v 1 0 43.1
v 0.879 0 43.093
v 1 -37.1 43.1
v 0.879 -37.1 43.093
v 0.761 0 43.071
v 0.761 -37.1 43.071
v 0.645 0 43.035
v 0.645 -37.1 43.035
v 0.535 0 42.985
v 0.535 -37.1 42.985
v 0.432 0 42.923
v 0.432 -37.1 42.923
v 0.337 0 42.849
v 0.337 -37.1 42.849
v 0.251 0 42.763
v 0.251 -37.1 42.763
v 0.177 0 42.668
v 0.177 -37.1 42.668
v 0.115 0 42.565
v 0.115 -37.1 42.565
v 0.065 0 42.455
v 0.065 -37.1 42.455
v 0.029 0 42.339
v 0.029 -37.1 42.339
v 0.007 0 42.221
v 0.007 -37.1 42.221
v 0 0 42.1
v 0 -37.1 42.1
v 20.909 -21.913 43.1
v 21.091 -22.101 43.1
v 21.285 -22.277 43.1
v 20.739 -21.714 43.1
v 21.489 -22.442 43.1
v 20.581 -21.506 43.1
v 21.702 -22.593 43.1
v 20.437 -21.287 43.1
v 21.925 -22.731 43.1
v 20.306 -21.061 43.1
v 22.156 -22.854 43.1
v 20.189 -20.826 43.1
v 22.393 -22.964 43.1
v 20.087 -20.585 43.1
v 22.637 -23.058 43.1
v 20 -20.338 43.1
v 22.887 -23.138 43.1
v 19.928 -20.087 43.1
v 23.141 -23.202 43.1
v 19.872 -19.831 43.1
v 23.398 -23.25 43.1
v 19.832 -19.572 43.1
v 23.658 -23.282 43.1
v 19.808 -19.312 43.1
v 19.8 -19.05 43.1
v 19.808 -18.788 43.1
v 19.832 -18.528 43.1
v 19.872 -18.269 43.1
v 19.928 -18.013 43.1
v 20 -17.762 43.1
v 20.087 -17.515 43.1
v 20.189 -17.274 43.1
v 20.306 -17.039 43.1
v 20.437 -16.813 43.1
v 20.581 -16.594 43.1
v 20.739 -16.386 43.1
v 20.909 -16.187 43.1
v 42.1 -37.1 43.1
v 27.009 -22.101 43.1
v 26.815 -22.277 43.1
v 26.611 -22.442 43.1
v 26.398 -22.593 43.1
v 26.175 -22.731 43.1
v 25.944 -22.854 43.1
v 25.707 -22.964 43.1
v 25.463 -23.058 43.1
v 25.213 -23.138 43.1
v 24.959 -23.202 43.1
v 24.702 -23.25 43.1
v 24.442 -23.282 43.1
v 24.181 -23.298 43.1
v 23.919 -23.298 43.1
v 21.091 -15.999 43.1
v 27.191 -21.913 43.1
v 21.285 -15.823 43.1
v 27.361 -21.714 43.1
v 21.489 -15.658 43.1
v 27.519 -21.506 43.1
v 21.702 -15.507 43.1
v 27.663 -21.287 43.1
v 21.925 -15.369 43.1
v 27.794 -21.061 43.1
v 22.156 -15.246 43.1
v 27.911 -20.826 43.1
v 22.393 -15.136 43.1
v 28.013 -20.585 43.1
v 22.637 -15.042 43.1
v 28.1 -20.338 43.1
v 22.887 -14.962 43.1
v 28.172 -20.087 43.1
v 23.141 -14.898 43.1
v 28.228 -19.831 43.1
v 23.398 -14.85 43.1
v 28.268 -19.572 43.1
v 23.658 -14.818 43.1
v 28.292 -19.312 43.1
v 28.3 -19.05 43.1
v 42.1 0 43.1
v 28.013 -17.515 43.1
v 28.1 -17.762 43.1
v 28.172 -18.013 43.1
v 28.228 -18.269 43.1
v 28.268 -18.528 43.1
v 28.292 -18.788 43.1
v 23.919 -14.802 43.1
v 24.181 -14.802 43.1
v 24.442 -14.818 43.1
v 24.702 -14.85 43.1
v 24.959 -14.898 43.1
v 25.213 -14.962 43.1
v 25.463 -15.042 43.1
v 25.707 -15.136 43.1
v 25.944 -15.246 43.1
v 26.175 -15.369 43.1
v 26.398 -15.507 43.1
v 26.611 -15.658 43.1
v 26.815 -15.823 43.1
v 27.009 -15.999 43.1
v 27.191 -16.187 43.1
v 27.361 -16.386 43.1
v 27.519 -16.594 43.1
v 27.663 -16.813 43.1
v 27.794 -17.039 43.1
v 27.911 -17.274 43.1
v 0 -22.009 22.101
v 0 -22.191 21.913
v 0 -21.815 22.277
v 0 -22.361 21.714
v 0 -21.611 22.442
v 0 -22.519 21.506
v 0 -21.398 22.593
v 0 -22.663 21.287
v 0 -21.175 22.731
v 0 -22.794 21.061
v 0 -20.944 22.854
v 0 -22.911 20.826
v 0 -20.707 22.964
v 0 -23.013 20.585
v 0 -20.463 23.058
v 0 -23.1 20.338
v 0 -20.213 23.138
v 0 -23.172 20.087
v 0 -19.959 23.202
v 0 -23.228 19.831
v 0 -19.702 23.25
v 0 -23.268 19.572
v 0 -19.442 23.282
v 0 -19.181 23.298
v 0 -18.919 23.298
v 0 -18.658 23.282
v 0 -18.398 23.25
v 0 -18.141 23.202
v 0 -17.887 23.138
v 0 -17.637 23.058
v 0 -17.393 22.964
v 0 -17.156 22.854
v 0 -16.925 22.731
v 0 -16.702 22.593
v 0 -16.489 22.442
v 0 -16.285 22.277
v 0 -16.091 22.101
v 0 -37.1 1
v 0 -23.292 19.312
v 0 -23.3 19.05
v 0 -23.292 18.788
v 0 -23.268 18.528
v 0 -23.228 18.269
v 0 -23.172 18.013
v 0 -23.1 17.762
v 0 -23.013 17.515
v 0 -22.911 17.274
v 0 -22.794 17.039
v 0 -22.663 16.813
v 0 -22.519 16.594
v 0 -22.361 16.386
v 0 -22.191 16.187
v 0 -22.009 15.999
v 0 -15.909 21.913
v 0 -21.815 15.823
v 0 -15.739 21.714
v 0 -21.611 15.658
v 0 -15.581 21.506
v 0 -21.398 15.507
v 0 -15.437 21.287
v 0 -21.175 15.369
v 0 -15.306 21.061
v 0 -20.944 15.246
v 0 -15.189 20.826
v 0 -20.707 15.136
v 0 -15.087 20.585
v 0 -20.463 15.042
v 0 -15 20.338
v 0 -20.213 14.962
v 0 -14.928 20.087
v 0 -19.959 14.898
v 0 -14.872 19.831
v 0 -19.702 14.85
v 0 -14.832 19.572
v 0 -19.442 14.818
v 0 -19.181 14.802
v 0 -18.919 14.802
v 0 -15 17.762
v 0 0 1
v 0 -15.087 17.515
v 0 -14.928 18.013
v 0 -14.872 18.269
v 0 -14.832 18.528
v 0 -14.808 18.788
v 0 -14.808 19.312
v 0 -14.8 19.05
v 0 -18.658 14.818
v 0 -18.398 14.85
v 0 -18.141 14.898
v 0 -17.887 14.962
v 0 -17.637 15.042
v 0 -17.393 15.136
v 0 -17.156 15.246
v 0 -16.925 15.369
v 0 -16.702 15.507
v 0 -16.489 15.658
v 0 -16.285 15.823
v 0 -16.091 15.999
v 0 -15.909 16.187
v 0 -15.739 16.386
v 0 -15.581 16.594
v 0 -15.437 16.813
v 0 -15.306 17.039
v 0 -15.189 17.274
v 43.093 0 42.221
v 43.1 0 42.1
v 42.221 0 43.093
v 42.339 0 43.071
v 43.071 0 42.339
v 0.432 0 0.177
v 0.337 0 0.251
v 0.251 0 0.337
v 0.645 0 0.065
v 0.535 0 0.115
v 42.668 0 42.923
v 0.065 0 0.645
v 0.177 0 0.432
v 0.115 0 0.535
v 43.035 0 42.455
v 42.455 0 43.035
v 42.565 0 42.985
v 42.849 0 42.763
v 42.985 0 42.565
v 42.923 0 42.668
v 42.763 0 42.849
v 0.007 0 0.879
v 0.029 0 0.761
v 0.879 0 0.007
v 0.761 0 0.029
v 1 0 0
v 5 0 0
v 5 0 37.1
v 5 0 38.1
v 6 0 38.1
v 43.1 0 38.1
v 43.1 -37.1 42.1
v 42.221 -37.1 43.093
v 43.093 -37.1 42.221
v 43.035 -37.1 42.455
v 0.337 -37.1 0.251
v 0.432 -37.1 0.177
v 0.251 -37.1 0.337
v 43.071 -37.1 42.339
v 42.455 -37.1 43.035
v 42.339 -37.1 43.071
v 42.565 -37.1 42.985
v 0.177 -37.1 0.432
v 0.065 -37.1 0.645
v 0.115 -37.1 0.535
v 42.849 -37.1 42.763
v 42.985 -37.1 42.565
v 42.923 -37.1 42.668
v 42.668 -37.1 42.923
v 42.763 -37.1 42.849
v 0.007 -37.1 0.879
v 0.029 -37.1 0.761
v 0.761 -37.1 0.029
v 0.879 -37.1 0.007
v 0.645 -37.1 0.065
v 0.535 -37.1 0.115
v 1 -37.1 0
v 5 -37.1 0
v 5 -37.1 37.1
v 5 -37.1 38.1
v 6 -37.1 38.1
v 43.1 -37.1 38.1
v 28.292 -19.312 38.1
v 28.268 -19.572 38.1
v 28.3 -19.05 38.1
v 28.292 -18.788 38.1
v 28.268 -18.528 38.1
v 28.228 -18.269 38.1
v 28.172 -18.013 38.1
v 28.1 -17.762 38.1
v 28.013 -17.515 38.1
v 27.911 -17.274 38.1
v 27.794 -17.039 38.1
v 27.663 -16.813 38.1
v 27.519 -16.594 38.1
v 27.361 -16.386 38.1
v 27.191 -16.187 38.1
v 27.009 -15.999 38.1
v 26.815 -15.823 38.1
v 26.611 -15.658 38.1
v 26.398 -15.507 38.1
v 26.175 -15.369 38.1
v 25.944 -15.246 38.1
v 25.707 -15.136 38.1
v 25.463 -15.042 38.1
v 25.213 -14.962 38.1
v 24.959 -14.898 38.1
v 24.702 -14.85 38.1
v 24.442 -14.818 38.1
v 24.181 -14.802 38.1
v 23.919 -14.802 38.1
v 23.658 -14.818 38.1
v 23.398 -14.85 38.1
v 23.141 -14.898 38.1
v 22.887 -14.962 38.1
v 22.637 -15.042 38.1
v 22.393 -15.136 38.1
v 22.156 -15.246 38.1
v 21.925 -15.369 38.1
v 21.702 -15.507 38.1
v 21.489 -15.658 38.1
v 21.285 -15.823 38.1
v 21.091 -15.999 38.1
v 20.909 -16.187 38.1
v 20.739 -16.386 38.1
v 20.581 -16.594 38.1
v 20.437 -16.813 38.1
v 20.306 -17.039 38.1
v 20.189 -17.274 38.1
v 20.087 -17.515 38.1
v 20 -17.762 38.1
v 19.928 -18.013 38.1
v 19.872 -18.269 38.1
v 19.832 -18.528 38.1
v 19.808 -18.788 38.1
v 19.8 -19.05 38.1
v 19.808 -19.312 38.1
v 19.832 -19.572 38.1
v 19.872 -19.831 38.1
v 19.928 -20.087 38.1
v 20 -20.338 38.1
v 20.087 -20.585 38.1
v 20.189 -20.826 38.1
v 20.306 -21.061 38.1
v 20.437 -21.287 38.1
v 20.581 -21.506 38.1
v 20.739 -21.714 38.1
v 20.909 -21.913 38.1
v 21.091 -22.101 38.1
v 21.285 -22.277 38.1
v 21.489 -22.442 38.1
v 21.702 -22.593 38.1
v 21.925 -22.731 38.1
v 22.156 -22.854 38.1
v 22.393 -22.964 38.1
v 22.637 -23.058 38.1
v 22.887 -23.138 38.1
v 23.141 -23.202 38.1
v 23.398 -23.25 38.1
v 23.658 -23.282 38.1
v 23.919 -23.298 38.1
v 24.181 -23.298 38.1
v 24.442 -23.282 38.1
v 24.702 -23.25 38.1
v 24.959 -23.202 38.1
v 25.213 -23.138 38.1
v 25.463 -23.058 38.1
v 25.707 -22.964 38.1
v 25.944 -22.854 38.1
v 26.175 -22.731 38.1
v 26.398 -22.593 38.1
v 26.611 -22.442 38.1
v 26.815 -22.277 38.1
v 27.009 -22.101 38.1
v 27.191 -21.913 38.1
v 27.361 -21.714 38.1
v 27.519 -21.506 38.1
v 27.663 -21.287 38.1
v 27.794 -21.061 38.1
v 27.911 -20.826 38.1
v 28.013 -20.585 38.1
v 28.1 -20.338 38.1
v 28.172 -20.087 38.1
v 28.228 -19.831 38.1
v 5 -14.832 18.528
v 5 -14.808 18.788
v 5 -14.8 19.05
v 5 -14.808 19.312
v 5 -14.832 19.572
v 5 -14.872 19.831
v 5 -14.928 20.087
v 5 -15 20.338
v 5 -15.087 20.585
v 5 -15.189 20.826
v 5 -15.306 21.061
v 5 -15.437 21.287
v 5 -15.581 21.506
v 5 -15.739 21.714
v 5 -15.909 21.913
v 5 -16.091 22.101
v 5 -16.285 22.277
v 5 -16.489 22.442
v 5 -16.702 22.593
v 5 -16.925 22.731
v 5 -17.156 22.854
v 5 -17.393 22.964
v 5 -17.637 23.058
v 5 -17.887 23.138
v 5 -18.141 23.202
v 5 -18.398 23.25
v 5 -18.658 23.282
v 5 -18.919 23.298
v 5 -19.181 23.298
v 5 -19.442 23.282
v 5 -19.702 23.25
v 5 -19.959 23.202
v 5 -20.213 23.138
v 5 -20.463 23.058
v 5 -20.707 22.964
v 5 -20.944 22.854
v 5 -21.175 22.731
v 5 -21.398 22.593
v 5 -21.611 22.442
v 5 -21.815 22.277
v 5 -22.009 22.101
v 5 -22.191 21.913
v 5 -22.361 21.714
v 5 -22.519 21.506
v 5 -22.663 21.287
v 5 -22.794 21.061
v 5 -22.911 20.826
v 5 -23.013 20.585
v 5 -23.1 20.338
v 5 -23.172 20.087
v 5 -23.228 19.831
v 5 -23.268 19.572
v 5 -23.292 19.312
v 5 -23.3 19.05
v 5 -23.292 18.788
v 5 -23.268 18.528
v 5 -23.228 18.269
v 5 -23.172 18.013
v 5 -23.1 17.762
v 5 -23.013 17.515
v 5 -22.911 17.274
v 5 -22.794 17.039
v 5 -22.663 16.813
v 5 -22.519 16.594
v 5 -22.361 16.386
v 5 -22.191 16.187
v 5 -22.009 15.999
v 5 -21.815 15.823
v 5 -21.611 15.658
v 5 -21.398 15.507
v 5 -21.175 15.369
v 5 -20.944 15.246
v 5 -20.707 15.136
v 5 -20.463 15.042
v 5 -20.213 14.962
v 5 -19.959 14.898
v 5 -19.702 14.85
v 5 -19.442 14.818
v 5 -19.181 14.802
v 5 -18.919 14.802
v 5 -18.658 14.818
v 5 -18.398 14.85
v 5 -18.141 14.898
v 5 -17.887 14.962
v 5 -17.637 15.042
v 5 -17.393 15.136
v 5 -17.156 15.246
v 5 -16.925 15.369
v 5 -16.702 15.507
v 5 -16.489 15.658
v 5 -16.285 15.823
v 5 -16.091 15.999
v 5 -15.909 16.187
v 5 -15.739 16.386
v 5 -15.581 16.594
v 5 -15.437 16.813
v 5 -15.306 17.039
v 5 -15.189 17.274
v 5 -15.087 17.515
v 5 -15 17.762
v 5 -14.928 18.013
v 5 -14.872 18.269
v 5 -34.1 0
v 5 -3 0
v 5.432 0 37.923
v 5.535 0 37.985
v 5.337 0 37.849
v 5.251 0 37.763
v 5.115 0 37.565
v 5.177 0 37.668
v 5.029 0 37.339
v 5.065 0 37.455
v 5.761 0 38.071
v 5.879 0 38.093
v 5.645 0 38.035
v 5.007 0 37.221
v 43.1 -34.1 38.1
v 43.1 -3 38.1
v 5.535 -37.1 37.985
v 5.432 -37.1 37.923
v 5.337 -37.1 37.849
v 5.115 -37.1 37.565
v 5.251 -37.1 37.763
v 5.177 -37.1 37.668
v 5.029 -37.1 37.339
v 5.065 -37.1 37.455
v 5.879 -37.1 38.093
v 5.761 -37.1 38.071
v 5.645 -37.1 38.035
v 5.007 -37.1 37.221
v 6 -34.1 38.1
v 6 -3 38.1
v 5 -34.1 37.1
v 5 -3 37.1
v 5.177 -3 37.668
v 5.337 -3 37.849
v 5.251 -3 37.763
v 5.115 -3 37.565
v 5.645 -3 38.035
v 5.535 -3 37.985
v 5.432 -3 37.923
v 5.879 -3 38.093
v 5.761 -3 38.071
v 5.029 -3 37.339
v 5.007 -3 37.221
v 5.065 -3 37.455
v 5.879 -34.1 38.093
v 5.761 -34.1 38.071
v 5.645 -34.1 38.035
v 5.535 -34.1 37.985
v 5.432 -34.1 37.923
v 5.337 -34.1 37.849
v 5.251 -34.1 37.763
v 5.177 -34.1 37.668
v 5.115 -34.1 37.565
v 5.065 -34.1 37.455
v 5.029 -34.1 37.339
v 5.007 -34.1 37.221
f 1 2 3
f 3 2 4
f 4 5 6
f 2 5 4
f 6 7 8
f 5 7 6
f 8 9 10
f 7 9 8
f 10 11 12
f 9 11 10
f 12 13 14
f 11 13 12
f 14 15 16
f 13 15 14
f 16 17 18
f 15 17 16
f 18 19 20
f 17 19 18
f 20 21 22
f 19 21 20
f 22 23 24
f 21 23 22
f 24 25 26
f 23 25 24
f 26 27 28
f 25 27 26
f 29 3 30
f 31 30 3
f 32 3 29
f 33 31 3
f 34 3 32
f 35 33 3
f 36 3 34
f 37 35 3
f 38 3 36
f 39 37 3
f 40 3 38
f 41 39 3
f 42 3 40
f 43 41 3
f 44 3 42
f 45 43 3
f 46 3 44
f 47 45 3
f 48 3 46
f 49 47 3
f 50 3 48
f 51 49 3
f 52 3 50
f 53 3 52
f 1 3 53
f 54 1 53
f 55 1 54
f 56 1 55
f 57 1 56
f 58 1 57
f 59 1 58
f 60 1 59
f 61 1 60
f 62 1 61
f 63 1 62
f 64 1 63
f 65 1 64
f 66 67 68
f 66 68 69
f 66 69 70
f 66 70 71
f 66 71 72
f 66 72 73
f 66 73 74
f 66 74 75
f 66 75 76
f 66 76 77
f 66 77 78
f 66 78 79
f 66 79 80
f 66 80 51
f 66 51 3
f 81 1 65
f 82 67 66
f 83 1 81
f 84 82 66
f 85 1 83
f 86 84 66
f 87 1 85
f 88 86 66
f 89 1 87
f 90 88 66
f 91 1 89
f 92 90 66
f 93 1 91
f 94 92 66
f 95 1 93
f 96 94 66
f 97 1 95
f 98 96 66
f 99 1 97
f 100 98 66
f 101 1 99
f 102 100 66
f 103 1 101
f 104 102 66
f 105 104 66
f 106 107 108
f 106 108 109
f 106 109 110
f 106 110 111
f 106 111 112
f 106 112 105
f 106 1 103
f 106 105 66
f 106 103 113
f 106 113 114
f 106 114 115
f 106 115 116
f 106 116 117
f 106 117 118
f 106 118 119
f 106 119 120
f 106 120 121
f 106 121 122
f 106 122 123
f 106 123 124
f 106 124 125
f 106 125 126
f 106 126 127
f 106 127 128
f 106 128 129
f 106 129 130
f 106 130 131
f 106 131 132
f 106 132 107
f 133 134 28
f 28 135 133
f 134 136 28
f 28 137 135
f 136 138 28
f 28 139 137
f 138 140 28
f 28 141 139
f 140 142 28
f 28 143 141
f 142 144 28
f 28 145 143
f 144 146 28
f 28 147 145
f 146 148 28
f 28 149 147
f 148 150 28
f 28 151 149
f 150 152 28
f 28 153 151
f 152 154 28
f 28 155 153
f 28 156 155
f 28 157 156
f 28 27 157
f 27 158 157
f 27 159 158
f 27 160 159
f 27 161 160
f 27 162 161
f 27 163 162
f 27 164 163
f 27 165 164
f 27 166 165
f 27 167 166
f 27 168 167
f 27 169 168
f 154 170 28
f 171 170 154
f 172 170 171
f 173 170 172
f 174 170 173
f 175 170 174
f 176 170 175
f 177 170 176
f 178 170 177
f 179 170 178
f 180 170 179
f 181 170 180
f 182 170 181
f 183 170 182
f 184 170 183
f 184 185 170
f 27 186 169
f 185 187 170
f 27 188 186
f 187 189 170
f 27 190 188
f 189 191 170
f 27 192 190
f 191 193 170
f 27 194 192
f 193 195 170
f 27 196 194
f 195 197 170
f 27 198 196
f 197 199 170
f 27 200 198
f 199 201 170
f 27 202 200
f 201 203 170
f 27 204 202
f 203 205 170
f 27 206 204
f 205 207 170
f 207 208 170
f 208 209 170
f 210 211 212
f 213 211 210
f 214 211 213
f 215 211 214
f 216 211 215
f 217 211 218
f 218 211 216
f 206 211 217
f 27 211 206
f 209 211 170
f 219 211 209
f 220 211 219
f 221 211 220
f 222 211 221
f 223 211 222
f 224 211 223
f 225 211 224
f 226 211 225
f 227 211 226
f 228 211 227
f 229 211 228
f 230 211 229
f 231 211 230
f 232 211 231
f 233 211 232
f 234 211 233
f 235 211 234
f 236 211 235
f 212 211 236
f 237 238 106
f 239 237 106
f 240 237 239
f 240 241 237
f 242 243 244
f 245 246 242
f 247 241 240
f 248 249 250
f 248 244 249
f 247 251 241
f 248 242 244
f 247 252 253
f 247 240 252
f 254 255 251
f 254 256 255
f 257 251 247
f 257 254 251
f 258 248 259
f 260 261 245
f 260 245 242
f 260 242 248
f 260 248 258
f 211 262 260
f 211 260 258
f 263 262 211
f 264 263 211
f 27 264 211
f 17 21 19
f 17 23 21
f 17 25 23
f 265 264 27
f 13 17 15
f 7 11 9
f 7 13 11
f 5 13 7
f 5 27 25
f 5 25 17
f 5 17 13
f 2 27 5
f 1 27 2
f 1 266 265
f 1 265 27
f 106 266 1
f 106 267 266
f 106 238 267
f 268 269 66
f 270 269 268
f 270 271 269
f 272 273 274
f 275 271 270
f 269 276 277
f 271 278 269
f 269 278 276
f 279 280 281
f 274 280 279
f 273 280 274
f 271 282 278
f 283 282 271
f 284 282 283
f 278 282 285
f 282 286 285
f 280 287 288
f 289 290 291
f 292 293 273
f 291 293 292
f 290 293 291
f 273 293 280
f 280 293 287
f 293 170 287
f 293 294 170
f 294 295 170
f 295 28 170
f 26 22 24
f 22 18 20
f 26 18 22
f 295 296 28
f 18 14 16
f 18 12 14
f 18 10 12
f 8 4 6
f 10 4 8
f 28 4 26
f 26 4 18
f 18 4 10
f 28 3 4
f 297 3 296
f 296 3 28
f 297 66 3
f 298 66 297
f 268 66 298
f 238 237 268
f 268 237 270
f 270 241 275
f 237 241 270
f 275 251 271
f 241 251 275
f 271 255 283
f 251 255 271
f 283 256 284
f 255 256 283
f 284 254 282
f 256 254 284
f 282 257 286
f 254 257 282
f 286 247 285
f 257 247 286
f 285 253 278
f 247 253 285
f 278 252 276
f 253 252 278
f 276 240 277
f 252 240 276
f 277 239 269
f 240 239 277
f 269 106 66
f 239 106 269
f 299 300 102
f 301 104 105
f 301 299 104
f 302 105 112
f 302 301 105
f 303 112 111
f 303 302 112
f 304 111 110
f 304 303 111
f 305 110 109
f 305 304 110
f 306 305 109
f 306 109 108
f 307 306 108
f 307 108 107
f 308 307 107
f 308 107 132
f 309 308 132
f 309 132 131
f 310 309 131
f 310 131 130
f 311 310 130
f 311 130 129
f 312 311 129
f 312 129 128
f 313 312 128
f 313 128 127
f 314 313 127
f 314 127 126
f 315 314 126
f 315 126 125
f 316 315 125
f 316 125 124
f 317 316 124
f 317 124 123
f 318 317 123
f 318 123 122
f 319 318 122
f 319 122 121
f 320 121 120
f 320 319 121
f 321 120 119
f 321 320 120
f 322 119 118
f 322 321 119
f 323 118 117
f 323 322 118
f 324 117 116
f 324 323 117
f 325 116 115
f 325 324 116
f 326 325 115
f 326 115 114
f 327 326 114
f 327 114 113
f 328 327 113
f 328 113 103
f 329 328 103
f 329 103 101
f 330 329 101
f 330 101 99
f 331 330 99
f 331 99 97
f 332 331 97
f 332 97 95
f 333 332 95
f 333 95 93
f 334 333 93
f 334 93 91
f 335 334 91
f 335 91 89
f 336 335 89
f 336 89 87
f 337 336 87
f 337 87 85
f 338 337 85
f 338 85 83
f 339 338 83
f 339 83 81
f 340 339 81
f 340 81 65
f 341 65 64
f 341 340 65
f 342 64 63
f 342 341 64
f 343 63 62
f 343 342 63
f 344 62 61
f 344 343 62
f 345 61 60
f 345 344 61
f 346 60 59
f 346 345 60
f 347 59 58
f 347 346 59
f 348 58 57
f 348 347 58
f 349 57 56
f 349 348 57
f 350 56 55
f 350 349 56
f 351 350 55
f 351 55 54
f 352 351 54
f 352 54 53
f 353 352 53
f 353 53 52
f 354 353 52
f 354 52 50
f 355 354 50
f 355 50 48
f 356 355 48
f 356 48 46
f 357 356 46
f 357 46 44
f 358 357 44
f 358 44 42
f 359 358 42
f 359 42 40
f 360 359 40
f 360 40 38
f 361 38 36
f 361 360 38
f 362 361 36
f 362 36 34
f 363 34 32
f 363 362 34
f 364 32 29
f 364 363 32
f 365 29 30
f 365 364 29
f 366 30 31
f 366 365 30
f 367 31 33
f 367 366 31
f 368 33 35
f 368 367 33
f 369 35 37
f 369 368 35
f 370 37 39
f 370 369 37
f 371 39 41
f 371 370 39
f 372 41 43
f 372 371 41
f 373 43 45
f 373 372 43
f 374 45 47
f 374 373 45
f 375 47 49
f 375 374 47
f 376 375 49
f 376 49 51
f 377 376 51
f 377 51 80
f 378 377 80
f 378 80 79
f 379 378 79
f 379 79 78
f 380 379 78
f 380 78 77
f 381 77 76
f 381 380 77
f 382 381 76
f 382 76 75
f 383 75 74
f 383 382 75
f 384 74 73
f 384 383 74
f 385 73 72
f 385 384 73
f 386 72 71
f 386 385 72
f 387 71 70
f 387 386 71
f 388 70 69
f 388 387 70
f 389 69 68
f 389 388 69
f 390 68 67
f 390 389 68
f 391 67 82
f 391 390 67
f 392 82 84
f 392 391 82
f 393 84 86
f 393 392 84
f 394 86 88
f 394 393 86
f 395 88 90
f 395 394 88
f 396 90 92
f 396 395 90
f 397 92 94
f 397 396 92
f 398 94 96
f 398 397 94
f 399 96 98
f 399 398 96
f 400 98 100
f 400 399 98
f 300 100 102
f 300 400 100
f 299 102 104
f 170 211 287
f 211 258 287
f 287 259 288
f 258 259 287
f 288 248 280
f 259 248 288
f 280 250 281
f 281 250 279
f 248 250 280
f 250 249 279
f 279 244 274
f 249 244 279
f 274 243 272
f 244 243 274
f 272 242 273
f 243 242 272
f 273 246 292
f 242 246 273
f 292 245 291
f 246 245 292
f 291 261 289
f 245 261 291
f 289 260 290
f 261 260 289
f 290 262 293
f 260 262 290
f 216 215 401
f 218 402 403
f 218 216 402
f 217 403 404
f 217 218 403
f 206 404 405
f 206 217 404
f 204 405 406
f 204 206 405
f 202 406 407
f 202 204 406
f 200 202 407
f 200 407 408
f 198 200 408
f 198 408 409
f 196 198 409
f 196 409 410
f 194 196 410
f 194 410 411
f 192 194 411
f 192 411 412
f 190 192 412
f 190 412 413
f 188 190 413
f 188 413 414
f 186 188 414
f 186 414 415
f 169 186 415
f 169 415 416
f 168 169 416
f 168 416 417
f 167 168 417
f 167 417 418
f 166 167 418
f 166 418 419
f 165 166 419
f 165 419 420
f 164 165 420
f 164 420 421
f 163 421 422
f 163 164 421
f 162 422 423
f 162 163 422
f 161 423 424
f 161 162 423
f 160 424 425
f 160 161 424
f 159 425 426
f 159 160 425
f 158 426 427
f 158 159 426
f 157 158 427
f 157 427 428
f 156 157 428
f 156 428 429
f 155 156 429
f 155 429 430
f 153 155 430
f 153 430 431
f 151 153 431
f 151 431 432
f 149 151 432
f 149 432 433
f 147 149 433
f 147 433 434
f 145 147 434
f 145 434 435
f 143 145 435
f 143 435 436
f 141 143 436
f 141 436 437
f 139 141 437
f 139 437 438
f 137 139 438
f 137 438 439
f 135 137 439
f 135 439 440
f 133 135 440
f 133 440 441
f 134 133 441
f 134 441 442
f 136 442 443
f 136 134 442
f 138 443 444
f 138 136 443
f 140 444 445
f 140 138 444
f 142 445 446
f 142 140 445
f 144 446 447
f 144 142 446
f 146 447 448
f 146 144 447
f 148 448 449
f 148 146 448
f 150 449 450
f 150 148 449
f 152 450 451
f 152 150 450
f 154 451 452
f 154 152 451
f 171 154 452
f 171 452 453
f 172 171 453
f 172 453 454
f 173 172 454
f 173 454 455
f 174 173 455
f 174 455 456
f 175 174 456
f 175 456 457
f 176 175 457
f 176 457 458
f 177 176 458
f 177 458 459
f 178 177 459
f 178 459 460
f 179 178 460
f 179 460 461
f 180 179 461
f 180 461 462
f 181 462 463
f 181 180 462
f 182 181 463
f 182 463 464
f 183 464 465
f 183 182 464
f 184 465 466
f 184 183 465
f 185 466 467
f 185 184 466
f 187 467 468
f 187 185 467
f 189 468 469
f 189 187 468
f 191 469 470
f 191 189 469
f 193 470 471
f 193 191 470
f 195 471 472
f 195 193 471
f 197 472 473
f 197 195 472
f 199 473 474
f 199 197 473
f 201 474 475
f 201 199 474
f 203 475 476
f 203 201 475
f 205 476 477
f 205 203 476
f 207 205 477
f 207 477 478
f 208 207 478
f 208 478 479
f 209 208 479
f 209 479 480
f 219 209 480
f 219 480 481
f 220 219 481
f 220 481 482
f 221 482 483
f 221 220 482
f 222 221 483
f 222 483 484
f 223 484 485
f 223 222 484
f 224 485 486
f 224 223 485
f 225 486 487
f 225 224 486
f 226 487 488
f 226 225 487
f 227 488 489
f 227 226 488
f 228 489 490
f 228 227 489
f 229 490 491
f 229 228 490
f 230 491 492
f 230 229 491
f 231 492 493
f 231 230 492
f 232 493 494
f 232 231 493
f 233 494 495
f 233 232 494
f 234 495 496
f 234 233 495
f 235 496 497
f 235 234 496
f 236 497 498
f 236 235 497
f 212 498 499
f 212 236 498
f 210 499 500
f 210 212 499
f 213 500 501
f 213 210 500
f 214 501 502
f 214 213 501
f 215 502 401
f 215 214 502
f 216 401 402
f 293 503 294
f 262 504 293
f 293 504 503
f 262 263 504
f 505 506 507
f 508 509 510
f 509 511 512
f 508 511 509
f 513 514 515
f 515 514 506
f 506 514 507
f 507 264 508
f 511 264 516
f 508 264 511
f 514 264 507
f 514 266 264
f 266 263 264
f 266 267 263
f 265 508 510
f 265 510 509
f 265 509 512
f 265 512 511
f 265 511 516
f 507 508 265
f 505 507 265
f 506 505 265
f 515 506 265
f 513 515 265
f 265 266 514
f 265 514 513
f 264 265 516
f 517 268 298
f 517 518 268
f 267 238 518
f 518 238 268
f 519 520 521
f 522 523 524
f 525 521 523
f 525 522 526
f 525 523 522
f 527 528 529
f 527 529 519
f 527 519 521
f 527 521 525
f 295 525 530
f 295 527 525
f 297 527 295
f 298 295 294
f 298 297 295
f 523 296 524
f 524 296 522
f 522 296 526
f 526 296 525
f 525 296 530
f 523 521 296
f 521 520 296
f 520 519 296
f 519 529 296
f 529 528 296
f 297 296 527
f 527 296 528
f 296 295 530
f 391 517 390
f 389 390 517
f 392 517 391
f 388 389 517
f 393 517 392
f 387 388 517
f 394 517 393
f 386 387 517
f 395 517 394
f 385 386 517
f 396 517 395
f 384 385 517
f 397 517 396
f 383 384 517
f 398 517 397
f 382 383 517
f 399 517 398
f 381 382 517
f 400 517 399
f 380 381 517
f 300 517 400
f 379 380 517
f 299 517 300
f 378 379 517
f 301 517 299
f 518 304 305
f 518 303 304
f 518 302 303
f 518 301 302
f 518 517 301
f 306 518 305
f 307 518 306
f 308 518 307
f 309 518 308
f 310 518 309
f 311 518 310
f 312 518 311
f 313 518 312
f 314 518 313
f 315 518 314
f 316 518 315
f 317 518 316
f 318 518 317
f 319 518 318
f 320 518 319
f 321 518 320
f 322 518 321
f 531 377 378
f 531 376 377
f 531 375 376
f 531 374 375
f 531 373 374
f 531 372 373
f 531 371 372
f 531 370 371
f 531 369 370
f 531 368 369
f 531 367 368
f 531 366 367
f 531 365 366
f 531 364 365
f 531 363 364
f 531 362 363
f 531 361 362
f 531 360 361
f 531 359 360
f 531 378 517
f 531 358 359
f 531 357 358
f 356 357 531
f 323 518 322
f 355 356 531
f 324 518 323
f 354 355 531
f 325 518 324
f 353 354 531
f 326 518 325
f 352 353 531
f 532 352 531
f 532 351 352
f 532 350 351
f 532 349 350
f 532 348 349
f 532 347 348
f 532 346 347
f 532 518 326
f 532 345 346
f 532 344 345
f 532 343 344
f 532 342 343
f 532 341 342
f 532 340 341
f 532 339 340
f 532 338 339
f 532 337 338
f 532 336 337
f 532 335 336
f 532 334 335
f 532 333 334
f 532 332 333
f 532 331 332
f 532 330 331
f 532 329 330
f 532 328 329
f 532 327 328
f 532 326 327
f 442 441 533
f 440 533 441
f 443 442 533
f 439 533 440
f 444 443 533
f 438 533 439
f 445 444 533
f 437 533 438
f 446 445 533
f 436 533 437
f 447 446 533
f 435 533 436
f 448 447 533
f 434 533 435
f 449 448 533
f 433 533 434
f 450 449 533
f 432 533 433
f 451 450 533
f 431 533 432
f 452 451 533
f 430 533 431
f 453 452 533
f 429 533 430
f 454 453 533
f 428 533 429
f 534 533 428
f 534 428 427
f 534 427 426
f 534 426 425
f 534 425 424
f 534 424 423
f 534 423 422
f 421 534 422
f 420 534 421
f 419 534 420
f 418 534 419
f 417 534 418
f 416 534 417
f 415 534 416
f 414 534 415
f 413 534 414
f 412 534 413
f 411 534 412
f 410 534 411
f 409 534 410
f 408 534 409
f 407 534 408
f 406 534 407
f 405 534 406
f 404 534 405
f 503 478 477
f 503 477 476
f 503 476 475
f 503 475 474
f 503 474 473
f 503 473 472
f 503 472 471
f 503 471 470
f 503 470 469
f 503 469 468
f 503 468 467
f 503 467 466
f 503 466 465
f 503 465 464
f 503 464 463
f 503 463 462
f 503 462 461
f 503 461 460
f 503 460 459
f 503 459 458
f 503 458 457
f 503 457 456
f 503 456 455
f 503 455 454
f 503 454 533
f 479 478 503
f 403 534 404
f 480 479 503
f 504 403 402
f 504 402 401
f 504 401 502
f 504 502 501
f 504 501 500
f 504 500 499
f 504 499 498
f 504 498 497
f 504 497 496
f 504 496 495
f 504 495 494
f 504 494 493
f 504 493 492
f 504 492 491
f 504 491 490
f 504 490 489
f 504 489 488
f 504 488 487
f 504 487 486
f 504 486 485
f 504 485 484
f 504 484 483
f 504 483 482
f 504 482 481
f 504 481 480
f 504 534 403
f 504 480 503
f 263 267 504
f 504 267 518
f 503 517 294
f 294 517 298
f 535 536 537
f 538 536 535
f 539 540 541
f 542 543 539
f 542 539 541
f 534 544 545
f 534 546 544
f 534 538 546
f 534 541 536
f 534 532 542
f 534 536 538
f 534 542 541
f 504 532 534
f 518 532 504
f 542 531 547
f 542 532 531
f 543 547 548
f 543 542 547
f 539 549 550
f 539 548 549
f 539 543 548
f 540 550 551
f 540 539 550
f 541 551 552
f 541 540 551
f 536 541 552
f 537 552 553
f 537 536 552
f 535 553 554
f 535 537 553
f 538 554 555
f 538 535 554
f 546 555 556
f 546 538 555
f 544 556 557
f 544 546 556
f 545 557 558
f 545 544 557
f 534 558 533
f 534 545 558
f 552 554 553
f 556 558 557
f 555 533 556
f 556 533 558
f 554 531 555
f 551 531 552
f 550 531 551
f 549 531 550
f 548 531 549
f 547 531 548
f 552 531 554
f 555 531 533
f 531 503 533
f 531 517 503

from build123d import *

# Parameters (mm, degrees)
PAD001_DEPTH    = 37.1
SKETCH_R        = 4.25
POCKET_DEPTH    = 43.101
SKETCH002_R     = 4.25
POCKET001_DEPTH = 43.101
PAD_DEPTH       = 3
PAD002_DEPTH    = 3


with BuildPart() as part:
    # Sketch001 → Pad001 (new body)
    with BuildSketch(Plane.XZ):
        with BuildLine():
            Line((1, 43.1), (42.1, 43.1))
            ThreePointArc((43.1, 42.1), (42.807107, 42.807107), (42.1, 43.1))
            Line((43.1, 38.1), (43.1, 42.1))
            Line((43.1, 38.1), (6, 38.1))
            ThreePointArc((6, 38.1), (5.292893, 37.807107), (5, 37.1))
            Line((5, 37.1), (5, 0))
            Line((1, 0), (5, 0))
            ThreePointArc((0, 1), (0.292893, 0.292893), (1, 0))
            Line((0, 42.1), (0, 1))
            ThreePointArc((1, 43.1), (0.292893, 42.807107), (0, 42.1))
        make_face()
    extrude(amount=PAD001_DEPTH)

    # Sketch → Pocket (cut, through all)
    with BuildSketch(Plane.XY):
        with Locations((24.05, -19.05)):
            Circle(SKETCH_R)
    extrude(amount=POCKET_DEPTH, mode=Mode.SUBTRACT)

    # Sketch002 → Pocket001 (cut, through all)
    with BuildSketch(Plane.YZ):
        with Locations((-19.05, 19.05)):
            Circle(SKETCH002_R)
    extrude(amount=POCKET001_DEPTH, mode=Mode.SUBTRACT)

    # Sketch003 → Pad (join)
    with BuildSketch(Plane.XZ):
        Polygon((5, 0), (43.1, 38.1), (5, 38.1), align=None)
    extrude(amount=PAD_DEPTH)

    # Sketch004 → Pad002 (join)
    with BuildSketch(Plane.XZ.offset(34.1)):
        Polygon((5, 0), (43.1, 38.1), (5, 38.1), align=None)
    extrude(amount=PAD002_DEPTH)


solid = part.part
